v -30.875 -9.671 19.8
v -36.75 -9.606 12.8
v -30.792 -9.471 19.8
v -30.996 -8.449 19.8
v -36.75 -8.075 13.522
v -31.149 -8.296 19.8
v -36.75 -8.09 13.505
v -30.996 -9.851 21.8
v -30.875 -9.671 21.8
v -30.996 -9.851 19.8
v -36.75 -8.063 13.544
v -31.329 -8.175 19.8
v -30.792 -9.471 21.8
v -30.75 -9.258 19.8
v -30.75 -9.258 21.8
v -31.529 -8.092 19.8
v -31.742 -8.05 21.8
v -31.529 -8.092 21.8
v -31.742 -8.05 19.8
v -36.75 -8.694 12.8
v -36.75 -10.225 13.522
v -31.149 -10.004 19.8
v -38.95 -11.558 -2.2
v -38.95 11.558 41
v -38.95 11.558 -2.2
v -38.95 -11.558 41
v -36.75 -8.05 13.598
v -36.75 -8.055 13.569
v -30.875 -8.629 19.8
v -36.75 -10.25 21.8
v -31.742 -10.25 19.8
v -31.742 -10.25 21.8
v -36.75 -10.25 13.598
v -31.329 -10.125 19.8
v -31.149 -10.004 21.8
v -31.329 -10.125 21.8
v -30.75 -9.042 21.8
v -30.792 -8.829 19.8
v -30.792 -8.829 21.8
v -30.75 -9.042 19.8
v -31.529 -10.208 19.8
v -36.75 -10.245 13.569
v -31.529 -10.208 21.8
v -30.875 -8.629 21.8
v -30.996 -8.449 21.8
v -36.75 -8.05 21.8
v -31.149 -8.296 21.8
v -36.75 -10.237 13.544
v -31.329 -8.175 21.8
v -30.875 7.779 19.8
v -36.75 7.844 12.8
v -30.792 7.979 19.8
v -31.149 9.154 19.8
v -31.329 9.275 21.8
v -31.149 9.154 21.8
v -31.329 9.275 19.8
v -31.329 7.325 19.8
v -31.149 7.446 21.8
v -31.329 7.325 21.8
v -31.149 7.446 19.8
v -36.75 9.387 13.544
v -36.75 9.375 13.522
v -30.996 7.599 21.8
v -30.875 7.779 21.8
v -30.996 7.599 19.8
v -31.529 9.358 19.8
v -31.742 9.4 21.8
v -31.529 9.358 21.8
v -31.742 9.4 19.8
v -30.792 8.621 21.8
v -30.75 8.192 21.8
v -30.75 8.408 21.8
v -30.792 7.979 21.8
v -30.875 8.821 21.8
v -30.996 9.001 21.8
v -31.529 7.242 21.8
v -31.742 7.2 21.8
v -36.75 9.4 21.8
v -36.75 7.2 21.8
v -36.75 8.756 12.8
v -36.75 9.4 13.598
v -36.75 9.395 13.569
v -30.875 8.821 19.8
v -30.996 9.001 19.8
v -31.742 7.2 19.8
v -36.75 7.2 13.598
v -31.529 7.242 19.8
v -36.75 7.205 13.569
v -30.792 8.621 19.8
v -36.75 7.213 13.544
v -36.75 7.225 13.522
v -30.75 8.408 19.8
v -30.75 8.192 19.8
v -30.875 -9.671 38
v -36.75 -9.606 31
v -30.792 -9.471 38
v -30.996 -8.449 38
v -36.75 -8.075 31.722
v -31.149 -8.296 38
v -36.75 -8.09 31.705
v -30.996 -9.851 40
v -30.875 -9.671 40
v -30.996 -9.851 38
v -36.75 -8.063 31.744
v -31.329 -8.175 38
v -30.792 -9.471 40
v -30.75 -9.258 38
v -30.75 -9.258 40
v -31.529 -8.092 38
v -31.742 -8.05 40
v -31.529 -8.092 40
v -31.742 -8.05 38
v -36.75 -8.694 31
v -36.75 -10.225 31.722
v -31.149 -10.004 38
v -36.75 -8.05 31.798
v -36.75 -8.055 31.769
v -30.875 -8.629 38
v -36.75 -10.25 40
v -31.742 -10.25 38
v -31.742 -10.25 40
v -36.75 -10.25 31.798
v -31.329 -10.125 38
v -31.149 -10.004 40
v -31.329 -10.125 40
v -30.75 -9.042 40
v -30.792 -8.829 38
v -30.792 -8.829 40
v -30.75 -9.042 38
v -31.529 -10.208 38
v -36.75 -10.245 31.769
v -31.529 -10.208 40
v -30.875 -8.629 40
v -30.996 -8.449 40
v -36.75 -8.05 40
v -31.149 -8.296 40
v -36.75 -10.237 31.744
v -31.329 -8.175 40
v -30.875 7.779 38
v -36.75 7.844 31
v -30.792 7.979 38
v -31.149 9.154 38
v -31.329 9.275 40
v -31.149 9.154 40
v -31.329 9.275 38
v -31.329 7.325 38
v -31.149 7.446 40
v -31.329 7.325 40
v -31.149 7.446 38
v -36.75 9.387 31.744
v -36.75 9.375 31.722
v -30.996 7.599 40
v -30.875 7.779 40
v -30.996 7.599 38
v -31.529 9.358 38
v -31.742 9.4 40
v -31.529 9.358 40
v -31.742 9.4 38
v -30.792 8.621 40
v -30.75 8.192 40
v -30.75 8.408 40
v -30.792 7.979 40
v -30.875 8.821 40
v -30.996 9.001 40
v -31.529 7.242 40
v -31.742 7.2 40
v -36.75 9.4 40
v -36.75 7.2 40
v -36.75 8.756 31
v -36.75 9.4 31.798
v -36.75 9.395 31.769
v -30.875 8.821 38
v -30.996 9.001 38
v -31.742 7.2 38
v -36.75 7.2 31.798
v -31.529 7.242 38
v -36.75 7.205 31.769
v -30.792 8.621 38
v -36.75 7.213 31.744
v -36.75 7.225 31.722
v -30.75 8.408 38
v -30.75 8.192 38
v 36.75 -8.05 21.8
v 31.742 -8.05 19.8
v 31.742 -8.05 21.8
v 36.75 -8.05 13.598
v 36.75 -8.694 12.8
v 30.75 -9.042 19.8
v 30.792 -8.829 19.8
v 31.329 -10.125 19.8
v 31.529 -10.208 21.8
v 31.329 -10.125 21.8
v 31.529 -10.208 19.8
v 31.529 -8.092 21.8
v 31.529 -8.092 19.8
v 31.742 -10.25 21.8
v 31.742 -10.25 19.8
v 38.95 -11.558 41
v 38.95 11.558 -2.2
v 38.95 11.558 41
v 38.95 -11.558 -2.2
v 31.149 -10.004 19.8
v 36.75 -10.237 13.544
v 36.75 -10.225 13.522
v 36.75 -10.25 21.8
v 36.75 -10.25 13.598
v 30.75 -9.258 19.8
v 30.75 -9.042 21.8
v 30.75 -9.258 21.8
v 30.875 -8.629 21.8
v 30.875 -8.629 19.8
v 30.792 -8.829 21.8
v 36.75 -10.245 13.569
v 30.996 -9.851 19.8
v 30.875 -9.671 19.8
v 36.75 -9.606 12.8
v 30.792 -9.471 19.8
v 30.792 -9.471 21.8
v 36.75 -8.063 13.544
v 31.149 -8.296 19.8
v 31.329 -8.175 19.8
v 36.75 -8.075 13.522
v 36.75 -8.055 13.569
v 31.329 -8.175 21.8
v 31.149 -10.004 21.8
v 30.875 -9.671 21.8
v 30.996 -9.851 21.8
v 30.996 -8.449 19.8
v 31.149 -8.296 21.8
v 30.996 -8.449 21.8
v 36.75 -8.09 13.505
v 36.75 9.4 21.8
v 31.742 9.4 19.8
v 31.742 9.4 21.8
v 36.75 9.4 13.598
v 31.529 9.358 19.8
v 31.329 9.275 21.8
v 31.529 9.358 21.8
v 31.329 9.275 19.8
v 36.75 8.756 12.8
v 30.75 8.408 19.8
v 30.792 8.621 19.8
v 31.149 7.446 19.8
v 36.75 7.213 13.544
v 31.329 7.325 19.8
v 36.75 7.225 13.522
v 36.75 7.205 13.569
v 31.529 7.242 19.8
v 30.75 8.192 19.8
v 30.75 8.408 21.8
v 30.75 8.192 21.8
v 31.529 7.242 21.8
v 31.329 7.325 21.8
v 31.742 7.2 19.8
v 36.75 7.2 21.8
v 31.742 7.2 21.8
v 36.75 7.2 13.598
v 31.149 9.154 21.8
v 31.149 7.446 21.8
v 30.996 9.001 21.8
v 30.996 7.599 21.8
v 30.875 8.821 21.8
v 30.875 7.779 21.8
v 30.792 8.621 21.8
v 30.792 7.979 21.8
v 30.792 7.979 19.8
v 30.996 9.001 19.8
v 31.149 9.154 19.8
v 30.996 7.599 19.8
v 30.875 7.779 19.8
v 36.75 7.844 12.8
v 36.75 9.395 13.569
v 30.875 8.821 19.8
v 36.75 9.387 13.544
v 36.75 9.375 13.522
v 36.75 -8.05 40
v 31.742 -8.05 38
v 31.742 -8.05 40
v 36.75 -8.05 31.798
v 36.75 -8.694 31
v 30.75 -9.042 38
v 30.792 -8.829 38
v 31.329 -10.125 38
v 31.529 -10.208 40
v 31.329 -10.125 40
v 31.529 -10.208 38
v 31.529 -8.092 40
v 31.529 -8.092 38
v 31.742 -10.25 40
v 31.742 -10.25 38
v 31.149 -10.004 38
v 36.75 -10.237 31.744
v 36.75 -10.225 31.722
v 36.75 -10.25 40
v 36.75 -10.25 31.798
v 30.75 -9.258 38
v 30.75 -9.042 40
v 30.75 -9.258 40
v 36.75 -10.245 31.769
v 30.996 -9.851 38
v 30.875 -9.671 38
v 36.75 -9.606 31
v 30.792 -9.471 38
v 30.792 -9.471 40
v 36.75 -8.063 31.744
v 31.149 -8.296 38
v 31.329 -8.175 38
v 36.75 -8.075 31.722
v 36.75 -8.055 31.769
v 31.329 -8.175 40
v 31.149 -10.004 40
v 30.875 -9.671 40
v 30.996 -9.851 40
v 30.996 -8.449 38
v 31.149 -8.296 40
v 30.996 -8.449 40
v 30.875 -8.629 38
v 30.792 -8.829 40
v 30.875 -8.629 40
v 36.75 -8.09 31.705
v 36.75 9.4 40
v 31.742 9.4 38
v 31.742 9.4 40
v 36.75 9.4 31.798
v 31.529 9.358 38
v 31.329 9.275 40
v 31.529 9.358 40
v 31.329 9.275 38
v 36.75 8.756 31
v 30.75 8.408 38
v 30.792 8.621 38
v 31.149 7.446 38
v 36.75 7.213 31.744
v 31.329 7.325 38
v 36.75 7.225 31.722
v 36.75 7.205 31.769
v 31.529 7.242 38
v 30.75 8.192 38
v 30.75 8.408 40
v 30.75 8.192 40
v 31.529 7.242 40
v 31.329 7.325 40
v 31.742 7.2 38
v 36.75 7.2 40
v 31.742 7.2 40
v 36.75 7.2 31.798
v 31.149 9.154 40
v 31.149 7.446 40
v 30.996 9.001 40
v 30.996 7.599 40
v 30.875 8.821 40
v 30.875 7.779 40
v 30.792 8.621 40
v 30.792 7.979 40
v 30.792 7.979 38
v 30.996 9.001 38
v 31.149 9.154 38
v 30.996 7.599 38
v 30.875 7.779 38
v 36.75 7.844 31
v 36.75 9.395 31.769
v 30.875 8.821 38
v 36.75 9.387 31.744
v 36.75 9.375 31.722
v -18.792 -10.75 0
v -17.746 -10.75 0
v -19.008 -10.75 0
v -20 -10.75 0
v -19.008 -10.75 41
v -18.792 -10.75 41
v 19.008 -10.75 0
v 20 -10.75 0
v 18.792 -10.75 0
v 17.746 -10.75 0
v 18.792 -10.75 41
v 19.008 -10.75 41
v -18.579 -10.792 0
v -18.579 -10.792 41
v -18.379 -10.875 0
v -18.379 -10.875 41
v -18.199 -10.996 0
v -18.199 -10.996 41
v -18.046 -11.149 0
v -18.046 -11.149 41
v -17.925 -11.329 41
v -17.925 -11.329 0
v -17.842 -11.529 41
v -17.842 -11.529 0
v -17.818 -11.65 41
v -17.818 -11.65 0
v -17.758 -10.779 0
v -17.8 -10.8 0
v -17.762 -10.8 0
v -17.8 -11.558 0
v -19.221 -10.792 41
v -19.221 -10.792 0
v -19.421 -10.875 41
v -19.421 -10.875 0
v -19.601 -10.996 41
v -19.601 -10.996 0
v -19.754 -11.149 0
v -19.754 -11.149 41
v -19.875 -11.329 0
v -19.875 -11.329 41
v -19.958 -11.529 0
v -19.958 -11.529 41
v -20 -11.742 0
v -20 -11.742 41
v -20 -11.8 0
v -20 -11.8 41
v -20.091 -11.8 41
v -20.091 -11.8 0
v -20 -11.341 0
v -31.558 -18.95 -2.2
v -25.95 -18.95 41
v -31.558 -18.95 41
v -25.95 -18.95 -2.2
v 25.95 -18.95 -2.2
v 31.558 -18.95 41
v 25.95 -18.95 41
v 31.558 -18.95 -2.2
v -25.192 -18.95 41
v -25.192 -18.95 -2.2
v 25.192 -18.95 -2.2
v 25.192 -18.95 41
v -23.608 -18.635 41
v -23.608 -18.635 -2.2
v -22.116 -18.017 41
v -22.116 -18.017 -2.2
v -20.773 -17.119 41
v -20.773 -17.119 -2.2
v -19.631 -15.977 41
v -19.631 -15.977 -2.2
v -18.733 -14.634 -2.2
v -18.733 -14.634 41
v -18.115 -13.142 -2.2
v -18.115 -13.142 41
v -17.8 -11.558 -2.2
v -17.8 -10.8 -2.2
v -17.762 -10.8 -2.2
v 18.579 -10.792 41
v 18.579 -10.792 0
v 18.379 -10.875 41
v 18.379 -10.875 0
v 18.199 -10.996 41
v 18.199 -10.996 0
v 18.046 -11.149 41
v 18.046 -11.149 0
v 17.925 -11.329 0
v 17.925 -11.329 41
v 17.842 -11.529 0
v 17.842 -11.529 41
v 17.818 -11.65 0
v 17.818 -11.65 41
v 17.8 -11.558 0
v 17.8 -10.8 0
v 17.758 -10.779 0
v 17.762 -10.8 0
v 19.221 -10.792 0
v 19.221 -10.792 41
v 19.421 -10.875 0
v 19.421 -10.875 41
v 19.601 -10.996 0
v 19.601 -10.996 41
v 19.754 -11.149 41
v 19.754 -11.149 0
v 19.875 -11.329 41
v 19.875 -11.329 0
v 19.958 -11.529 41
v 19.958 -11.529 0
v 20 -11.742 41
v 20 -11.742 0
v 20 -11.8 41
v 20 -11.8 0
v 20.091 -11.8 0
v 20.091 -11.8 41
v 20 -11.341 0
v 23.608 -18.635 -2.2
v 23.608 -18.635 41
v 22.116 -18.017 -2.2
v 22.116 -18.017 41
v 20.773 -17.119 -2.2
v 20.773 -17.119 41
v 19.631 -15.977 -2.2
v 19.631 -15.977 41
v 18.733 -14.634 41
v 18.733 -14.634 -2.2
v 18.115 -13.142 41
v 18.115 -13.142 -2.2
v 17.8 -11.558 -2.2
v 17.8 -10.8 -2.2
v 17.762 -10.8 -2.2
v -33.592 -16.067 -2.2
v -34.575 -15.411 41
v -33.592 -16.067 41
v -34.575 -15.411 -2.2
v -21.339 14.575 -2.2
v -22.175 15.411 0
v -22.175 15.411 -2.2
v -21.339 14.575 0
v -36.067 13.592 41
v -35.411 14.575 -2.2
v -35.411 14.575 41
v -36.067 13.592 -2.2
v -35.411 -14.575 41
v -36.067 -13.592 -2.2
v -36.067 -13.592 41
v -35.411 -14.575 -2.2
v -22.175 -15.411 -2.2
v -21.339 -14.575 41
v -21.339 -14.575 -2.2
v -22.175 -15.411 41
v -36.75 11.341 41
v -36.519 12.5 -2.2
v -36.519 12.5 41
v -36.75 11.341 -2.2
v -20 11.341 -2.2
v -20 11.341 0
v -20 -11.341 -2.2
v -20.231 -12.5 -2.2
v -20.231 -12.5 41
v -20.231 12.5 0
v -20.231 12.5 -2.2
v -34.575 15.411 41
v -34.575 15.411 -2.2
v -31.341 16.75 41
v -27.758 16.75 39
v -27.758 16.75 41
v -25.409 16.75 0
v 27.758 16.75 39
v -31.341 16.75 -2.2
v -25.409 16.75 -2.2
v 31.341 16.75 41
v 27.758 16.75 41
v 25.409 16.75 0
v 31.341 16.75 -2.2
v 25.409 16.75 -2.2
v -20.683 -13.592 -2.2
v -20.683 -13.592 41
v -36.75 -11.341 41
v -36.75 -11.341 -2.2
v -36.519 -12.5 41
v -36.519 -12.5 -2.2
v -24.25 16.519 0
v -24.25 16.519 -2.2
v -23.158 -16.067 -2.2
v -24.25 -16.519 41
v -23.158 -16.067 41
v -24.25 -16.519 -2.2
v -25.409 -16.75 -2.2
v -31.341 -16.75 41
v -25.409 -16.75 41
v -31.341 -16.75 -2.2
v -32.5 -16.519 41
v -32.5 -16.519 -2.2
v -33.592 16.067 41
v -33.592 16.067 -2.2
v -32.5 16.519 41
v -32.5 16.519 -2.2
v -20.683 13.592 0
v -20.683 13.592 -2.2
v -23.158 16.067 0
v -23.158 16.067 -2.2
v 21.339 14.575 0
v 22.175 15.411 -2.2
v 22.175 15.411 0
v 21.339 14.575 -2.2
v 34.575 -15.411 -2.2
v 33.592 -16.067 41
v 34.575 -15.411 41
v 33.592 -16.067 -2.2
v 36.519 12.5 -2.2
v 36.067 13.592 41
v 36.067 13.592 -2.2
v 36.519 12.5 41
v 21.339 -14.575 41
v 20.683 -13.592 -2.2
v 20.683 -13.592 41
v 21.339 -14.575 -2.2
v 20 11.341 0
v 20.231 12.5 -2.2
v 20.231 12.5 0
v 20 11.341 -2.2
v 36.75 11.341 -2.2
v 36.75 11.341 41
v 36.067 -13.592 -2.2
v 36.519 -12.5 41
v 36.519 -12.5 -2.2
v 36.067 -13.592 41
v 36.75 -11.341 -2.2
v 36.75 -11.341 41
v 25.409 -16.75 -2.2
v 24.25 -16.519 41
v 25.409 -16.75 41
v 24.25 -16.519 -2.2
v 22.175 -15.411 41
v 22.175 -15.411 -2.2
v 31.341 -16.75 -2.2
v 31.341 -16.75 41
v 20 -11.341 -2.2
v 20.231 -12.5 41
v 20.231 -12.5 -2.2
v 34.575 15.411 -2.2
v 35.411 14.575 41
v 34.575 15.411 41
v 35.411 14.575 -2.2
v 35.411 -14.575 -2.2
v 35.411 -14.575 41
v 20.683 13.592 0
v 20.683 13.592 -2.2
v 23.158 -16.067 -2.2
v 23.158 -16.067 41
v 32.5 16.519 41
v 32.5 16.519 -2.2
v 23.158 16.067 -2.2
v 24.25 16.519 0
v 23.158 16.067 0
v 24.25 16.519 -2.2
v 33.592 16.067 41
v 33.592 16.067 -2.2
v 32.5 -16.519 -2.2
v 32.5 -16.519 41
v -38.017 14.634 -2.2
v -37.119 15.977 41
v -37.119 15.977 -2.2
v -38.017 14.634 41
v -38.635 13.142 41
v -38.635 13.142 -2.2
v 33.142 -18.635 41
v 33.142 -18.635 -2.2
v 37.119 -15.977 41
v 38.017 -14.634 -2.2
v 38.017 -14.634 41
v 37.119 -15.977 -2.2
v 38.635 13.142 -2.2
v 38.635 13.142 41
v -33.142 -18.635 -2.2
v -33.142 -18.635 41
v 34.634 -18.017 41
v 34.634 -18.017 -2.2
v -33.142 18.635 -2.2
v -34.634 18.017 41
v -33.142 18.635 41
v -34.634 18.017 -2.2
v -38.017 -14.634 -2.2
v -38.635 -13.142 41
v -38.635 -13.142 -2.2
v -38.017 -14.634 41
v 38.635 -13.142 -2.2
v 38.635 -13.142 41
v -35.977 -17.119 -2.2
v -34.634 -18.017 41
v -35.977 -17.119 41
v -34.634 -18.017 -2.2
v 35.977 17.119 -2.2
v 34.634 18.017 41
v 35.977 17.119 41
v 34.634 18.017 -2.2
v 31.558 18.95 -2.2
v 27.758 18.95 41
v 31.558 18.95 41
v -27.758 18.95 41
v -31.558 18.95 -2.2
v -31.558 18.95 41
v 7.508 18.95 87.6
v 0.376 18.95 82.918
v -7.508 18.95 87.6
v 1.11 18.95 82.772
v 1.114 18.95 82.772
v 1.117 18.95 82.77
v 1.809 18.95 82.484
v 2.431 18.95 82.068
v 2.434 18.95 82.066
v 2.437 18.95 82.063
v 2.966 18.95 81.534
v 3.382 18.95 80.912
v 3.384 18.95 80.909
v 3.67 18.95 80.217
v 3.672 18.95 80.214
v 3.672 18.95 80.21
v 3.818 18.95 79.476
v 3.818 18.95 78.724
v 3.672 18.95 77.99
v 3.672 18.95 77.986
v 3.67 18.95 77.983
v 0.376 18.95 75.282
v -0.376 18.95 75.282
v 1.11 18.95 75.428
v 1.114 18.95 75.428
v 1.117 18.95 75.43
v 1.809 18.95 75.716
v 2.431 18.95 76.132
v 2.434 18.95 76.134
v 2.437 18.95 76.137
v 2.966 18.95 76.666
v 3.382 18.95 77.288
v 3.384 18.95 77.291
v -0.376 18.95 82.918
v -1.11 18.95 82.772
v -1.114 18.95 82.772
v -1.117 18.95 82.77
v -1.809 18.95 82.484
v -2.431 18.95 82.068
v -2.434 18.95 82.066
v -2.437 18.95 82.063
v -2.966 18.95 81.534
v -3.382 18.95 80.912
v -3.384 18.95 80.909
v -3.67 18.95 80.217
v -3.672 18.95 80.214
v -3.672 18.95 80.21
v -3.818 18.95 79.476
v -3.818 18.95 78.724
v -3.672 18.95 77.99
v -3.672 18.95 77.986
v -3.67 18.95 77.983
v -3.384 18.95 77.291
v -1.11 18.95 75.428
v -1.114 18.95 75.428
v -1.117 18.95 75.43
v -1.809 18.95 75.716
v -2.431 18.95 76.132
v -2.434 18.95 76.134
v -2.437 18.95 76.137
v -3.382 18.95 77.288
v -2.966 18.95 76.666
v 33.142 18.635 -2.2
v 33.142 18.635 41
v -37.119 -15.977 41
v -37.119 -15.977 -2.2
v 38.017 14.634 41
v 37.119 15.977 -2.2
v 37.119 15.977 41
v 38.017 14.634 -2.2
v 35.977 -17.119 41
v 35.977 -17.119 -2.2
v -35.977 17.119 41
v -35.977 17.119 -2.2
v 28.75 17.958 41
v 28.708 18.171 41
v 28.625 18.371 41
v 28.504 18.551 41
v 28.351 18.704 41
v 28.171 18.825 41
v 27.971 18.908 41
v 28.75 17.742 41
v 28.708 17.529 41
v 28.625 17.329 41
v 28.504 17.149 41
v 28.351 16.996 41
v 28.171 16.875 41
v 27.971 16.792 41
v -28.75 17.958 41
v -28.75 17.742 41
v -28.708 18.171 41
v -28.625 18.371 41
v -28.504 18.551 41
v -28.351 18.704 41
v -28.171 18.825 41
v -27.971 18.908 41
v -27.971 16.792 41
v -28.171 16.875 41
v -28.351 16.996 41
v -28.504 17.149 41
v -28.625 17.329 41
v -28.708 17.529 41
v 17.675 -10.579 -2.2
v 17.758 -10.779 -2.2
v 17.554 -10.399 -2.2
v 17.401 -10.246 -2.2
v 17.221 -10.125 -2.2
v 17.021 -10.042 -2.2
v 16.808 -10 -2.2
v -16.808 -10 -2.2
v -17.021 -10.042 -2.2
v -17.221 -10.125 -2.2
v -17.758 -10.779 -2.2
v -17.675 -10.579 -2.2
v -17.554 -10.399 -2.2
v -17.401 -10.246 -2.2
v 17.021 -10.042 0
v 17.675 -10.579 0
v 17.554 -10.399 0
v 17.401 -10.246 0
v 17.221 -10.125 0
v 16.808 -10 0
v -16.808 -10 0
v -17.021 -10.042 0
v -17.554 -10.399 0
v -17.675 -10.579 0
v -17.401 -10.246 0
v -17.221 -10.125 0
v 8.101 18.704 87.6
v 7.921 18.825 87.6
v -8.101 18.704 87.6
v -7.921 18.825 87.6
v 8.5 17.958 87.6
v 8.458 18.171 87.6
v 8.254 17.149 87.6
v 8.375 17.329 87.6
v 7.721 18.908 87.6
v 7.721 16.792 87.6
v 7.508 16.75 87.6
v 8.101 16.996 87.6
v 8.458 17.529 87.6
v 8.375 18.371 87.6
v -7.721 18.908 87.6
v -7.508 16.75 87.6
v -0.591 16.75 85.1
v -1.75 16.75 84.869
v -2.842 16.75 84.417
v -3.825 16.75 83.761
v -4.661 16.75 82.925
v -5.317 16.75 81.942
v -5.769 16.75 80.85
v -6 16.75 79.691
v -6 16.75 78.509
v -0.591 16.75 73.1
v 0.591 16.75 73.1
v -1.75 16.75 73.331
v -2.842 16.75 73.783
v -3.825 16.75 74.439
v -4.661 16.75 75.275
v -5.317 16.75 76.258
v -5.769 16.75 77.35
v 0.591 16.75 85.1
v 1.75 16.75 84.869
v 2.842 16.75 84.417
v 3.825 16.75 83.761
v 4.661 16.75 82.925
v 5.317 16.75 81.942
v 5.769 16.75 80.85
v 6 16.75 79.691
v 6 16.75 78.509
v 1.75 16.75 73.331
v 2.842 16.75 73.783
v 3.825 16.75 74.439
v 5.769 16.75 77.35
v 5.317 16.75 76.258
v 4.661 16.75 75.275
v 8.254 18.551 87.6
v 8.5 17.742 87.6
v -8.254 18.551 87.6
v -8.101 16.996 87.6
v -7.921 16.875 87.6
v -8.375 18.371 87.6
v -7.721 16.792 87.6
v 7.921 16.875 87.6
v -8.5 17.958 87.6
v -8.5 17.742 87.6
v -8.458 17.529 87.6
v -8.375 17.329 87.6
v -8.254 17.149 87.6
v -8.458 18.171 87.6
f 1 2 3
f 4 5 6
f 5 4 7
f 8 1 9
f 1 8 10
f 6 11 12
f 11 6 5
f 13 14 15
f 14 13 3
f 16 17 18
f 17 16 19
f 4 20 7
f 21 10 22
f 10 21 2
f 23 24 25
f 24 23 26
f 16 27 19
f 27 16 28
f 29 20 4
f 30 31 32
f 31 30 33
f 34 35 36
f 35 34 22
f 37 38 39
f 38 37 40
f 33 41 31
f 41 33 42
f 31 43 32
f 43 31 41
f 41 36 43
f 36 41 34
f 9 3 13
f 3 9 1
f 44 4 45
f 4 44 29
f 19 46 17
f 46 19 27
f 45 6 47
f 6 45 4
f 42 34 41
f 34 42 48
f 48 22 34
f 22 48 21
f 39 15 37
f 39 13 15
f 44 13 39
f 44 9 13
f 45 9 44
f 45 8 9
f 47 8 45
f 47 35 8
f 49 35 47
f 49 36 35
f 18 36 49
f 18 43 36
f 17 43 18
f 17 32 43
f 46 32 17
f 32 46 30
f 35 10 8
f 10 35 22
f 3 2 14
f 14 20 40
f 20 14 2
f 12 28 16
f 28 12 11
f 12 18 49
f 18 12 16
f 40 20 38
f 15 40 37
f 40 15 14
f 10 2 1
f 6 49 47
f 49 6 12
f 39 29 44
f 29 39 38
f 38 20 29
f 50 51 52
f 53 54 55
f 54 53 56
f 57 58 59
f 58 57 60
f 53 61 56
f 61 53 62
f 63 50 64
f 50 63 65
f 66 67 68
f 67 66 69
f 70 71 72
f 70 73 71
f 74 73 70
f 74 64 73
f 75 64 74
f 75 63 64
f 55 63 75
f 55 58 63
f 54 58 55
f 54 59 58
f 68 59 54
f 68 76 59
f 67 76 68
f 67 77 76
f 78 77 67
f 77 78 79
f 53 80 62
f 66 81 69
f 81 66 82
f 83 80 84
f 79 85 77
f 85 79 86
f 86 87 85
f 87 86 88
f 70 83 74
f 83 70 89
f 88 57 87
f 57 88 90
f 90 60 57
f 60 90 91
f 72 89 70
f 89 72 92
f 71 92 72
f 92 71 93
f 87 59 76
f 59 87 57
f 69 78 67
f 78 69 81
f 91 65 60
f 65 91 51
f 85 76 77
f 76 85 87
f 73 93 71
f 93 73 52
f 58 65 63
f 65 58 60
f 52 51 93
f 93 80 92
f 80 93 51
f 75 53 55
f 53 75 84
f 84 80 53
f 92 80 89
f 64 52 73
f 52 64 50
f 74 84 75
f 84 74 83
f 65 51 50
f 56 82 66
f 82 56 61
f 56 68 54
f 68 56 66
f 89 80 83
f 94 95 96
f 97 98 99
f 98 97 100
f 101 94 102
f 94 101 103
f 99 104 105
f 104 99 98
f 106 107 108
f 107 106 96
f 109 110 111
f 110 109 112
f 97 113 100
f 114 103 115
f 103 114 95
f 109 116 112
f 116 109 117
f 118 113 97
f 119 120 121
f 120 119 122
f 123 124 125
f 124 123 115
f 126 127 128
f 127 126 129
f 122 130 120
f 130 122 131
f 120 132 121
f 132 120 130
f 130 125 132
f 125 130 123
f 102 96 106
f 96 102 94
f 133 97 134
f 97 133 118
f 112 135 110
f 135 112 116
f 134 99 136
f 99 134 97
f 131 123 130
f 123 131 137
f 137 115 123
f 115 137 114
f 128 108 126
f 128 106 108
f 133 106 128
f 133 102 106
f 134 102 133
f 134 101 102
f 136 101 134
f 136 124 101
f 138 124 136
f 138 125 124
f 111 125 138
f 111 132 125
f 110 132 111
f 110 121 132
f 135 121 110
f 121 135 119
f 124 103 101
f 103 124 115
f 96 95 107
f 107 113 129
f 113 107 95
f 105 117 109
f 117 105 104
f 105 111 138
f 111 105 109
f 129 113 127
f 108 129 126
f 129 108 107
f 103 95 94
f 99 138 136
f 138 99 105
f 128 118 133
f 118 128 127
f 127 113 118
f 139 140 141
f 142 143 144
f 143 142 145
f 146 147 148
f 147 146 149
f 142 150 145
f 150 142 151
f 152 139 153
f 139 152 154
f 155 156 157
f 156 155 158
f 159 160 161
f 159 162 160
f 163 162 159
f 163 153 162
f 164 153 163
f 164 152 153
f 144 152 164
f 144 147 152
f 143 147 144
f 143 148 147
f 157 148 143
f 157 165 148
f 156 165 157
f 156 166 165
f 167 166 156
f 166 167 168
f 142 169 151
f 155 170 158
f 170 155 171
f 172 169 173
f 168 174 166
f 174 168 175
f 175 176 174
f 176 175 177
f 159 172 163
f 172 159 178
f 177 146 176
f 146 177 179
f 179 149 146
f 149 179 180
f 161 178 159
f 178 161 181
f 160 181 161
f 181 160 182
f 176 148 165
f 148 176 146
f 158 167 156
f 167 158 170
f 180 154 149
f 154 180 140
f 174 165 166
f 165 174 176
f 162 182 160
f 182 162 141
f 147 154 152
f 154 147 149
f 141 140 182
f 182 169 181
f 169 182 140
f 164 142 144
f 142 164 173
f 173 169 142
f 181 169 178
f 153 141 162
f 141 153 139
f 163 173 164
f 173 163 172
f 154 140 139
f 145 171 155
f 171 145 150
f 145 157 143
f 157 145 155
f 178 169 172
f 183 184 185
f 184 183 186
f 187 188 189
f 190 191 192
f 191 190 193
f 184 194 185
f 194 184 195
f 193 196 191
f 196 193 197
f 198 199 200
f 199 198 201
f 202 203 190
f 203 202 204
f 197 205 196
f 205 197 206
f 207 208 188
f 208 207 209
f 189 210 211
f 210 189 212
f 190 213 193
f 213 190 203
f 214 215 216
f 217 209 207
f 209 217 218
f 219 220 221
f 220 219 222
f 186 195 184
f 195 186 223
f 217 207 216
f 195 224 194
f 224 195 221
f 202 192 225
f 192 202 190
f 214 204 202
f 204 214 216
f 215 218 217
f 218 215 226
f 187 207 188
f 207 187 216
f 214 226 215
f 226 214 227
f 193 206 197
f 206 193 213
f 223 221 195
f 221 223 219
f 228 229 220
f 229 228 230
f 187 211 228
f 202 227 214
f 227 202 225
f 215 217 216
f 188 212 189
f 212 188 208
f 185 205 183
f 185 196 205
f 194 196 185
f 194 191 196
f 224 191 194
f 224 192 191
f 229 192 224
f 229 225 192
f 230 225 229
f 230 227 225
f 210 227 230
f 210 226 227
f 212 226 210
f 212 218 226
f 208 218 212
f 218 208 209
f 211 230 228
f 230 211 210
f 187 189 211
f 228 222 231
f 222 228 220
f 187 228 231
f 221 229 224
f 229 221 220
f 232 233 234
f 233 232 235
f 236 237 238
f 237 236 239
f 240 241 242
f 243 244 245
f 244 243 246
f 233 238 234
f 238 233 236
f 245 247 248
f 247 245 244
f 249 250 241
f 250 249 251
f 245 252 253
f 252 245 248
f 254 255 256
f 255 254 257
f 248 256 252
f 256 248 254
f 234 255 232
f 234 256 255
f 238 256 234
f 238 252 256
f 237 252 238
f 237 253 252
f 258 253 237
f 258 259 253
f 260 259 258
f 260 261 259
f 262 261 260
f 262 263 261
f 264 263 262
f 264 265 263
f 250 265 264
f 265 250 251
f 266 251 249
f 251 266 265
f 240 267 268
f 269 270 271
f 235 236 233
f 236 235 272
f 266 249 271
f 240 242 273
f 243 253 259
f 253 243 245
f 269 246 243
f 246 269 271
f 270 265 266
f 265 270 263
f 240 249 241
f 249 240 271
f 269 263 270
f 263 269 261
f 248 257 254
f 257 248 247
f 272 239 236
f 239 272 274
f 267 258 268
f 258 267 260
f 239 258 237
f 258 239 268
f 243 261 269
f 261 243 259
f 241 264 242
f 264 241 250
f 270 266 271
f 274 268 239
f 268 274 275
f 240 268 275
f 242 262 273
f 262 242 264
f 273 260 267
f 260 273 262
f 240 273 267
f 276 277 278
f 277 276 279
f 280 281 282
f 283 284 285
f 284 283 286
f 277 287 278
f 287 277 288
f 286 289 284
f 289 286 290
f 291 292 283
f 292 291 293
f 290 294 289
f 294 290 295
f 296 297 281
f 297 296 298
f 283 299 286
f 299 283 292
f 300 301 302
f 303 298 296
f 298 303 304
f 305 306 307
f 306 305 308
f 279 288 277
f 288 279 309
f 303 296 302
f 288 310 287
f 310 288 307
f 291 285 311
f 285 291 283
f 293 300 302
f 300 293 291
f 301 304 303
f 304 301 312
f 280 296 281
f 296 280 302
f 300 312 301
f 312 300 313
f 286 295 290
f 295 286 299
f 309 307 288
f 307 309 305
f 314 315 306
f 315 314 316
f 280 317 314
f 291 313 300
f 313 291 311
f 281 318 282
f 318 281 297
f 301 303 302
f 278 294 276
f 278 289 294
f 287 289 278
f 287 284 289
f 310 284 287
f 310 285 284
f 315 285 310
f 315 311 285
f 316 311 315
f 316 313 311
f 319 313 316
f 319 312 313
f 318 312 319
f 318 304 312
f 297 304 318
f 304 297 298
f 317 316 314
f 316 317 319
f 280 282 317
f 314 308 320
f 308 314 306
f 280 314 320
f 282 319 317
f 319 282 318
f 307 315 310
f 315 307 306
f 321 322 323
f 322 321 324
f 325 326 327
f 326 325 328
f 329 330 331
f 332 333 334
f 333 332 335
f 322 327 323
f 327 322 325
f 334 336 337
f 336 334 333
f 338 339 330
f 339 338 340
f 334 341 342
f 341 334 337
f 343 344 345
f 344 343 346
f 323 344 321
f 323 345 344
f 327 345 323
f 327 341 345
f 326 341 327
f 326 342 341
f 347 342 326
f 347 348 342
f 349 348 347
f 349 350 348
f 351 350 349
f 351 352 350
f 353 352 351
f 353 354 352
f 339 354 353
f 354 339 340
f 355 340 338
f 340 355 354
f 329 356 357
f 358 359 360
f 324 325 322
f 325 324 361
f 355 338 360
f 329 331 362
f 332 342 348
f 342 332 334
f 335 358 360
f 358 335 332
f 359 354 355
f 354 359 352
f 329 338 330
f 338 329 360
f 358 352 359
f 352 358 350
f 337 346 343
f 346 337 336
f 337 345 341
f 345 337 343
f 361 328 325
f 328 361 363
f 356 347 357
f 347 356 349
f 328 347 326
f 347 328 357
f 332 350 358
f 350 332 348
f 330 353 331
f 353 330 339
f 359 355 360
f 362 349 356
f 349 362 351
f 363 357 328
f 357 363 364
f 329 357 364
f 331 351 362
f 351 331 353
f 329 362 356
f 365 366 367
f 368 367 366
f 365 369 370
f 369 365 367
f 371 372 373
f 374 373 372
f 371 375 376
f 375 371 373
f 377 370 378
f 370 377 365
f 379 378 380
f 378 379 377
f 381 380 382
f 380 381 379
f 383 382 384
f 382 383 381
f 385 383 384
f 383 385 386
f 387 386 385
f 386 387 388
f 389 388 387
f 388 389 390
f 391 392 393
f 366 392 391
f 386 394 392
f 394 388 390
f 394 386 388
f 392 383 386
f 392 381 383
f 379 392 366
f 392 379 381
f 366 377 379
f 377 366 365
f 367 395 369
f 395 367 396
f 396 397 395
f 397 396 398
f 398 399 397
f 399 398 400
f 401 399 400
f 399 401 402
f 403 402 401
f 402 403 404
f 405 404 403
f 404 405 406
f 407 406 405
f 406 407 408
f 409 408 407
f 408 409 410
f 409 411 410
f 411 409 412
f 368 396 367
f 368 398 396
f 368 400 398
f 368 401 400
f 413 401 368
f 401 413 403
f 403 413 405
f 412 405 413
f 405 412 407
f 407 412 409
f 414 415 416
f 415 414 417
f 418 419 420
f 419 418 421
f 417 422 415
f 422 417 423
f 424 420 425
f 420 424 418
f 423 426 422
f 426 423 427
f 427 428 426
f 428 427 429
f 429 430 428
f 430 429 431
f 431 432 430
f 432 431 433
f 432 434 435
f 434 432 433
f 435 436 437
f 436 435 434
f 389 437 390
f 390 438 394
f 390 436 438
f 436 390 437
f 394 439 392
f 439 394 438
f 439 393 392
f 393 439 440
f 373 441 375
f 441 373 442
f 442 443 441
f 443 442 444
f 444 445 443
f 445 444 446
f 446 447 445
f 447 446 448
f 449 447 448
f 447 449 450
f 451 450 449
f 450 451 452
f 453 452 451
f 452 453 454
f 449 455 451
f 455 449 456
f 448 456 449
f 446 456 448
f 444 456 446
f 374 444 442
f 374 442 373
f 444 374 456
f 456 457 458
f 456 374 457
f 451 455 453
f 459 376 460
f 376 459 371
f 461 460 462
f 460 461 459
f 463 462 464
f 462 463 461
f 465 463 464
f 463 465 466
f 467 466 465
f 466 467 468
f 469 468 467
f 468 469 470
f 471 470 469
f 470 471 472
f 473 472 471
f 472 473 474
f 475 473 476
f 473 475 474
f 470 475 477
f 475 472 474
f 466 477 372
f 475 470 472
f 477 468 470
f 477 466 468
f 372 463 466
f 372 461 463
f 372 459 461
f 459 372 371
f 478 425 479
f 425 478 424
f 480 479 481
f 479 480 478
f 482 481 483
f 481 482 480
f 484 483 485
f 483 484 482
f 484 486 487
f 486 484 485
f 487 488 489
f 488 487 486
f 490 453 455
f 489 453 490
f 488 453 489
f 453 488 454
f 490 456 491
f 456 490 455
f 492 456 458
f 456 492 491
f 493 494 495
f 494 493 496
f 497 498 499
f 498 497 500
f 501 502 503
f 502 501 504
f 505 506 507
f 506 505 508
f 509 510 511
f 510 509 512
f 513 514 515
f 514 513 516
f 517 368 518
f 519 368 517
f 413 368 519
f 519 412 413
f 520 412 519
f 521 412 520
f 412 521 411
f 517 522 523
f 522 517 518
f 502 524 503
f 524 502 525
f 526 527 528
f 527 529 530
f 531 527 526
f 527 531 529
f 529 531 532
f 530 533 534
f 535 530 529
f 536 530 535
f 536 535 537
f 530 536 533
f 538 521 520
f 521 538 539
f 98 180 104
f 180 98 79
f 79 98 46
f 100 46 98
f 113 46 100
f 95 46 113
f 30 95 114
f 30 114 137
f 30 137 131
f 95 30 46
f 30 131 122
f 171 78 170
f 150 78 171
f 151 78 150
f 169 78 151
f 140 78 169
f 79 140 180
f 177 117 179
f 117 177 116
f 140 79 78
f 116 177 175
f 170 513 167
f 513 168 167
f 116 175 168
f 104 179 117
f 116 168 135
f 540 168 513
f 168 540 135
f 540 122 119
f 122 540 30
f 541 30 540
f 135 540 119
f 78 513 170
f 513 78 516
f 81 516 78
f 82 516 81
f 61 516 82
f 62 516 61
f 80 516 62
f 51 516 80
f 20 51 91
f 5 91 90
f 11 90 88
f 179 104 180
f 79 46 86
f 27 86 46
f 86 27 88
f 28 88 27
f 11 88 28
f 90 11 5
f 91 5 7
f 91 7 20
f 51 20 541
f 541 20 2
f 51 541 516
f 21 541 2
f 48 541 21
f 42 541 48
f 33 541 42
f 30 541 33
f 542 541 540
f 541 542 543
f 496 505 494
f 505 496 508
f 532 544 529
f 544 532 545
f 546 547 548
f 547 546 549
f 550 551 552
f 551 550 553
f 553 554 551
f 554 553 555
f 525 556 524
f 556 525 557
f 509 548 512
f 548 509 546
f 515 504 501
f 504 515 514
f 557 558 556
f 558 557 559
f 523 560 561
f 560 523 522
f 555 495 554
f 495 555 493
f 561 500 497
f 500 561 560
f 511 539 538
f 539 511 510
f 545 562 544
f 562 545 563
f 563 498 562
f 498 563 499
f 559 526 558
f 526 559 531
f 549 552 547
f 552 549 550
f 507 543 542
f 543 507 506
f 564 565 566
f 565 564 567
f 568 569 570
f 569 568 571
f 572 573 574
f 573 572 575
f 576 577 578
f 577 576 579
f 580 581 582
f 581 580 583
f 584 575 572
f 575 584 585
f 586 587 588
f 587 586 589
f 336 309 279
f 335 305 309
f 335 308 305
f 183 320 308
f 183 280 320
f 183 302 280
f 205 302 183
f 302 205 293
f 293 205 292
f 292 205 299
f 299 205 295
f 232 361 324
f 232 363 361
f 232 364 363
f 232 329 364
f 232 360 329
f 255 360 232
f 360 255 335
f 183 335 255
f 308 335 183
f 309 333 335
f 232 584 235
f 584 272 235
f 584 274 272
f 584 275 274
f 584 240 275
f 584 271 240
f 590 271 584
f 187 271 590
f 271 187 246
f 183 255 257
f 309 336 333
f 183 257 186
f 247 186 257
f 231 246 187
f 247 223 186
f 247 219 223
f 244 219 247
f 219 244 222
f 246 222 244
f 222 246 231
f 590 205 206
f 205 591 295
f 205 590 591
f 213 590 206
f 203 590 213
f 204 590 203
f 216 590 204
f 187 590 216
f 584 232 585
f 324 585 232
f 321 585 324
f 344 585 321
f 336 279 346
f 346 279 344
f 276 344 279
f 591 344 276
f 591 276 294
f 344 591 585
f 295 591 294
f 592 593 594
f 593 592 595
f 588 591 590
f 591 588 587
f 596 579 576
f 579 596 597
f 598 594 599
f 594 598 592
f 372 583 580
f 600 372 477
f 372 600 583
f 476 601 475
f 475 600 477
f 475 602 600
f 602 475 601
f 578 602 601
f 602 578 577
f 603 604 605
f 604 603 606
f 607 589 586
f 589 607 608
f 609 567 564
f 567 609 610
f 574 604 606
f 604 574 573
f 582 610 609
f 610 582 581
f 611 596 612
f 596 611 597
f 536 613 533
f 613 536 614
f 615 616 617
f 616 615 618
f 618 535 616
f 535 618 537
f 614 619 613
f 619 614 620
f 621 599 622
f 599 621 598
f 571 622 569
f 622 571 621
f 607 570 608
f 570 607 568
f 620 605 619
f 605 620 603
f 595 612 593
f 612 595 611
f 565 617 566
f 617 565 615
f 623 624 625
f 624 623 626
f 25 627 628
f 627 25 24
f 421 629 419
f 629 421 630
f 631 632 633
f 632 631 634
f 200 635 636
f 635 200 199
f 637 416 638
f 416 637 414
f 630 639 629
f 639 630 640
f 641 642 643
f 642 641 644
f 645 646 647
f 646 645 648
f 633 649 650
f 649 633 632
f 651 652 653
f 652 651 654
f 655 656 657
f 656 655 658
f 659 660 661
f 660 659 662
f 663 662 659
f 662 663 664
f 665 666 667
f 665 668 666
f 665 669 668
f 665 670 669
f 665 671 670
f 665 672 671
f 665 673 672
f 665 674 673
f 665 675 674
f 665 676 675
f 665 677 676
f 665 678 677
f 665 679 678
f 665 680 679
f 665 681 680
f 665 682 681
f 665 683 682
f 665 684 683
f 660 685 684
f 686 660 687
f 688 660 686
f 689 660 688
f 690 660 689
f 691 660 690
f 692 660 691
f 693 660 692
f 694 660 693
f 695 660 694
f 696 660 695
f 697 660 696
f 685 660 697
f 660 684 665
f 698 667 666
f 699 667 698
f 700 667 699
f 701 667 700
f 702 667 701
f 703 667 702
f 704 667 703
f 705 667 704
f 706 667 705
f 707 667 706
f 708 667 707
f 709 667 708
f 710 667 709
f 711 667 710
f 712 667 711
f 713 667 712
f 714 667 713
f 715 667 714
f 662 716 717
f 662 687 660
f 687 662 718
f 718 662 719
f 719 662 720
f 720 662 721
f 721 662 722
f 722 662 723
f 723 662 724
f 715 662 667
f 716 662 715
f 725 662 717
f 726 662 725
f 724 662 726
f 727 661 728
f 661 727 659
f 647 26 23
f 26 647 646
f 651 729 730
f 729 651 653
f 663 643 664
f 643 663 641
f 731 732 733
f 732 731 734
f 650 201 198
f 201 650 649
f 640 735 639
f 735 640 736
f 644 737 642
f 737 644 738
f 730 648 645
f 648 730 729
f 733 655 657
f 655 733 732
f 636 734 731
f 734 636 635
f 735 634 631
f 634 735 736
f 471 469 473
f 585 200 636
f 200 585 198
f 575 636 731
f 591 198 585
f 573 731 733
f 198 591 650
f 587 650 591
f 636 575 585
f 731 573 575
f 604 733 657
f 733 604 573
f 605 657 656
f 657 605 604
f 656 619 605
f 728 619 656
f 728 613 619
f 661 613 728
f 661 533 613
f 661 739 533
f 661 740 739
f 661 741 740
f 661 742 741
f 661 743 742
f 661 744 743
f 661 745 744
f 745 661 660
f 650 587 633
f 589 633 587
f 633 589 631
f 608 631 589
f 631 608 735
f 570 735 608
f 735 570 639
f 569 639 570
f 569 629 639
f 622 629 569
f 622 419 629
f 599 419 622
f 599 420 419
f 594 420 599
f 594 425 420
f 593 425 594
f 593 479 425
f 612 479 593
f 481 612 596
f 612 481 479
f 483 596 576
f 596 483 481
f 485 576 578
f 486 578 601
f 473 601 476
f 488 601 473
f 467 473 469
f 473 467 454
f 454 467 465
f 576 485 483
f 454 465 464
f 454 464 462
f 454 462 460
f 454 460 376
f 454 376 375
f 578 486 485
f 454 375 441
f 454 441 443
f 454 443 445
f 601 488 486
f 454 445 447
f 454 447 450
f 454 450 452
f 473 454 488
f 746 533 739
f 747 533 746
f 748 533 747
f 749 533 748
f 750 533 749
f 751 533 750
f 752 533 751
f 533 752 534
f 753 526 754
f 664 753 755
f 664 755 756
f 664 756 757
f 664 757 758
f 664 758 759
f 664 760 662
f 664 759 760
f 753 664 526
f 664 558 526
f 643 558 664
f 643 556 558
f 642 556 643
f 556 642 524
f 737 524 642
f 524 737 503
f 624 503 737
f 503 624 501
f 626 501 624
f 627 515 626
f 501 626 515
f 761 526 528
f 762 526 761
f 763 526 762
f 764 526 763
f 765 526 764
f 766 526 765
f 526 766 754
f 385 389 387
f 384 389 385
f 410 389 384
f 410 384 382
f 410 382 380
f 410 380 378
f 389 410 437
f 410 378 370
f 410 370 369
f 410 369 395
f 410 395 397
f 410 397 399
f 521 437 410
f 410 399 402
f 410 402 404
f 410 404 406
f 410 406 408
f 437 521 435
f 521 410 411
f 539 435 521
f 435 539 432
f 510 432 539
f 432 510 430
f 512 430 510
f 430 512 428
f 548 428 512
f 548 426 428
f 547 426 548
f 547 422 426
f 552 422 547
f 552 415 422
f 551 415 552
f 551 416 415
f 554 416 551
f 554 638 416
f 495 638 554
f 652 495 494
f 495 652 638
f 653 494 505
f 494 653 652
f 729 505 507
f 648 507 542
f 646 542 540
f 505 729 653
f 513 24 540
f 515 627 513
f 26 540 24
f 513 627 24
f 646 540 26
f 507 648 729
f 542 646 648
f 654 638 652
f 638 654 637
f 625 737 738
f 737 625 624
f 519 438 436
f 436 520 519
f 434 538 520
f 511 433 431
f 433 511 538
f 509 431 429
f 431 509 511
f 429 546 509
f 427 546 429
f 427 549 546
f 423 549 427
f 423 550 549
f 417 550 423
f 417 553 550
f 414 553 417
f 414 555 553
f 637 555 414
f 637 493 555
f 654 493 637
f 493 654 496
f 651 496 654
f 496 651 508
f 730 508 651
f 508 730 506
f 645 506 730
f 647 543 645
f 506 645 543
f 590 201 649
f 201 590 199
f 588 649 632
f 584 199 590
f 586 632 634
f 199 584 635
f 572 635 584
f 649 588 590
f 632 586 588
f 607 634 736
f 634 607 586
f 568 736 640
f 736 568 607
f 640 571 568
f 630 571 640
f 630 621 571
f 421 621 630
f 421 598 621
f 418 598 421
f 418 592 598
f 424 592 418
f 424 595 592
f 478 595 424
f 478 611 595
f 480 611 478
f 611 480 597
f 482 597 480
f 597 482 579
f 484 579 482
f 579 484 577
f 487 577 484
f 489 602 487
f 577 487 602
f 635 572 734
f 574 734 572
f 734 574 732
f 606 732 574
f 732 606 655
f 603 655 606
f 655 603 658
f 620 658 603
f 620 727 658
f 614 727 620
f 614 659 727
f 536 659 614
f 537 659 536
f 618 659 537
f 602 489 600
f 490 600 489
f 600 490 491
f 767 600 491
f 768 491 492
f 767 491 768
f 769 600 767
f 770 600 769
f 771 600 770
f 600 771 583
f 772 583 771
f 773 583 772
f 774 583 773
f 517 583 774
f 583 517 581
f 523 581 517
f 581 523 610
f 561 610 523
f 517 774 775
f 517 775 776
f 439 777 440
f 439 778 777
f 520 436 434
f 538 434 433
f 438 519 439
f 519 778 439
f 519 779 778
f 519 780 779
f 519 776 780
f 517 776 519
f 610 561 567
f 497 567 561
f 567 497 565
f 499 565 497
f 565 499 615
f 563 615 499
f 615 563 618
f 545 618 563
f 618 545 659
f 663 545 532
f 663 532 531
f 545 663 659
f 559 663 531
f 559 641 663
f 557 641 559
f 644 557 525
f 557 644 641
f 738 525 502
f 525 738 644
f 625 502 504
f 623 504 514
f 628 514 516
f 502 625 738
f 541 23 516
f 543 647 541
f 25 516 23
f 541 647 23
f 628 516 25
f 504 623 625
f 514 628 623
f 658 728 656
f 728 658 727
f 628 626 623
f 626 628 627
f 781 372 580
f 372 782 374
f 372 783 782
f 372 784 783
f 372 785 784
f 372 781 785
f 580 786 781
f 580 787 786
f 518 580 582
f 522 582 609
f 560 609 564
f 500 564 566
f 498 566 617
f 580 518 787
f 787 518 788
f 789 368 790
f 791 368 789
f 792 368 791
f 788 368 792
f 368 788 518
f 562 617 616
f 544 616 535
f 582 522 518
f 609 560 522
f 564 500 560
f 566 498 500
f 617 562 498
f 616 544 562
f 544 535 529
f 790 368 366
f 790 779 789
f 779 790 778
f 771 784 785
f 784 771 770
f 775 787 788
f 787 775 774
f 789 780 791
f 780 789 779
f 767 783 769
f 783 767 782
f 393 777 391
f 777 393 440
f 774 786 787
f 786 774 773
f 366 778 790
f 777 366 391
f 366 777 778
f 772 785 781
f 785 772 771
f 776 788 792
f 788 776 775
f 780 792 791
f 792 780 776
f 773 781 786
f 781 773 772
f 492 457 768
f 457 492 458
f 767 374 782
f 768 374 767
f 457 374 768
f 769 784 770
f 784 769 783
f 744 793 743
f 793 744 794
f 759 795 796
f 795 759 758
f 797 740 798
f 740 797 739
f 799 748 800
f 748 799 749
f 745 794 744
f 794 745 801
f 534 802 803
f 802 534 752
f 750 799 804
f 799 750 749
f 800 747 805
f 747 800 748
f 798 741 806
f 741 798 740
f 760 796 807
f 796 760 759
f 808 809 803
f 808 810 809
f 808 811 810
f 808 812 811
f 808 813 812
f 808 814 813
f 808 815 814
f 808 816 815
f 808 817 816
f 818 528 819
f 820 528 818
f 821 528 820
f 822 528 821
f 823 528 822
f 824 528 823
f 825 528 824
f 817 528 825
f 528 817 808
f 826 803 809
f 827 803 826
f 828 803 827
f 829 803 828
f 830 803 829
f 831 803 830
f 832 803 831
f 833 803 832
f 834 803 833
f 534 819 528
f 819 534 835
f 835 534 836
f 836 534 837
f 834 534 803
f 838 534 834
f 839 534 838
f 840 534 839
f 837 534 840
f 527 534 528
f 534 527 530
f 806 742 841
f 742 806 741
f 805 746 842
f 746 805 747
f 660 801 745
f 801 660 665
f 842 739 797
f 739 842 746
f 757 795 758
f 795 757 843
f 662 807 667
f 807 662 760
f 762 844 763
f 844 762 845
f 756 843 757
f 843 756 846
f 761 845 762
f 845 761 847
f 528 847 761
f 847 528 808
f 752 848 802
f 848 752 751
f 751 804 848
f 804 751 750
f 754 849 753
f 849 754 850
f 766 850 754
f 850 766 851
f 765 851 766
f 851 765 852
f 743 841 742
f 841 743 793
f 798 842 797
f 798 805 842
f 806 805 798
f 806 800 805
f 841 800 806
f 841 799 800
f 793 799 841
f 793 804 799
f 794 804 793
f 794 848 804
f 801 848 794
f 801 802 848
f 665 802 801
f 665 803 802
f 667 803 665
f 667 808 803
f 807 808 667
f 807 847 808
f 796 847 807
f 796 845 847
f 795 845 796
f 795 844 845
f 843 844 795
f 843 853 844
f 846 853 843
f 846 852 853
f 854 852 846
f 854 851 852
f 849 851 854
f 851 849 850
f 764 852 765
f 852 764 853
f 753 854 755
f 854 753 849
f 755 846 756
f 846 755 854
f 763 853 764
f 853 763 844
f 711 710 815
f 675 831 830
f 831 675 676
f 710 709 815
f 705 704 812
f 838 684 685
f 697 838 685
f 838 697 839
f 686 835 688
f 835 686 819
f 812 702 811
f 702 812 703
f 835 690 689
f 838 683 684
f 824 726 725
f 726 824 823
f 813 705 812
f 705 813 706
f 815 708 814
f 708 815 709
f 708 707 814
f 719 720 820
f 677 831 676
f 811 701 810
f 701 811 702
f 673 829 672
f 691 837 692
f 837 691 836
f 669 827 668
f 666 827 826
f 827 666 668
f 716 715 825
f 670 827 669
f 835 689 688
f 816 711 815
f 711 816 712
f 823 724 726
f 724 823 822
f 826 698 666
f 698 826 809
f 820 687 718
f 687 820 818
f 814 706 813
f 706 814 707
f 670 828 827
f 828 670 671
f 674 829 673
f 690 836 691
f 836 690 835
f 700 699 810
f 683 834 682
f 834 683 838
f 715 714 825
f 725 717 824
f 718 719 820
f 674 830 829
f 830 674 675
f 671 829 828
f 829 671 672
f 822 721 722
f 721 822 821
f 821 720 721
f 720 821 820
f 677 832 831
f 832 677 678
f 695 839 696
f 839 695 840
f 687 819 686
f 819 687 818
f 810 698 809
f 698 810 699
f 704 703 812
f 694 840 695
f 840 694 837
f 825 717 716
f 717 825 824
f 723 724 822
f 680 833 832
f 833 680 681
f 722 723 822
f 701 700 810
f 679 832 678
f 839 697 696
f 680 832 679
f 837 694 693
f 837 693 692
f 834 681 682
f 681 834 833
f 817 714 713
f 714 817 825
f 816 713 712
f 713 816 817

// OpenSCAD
include <lumpyscad/lib.scad>;

// rough dimensions
object_width = 60.5;
object_depth = 26.5;
object_height = 113;
object_rounded_diam = 30;
face_height = 70;
face_depth = 3;

// rough measurements because it doesn't matter
button_from_bottom = 30;
button_diam = 14;

wall_thickness = 2.2;
air_gap = 6; // let air circulate around the device, under the assumption it will give more accurate readings

object_tolerance = 1;
cavity_width = object_width + object_tolerance;
cavity_depth = object_depth + object_tolerance;
cavity_height = object_height-face_height-2;
cavity_rounded_diam = air_gap * 2;

air_cavity_width = cavity_width + 2 * air_gap;
air_cavity_depth = cavity_depth + air_gap;

overall_width = air_cavity_width + 2 * wall_thickness;
overall_depth = air_cavity_depth + 2 * wall_thickness; // no air gap in front
overall_height = cavity_height + wall_thickness;
overall_rounded_diam = cavity_rounded_diam + 2 * (wall_thickness);

// an airthings corentium home 2
module object() {
  module body() {
    union() {
      // main
      translate([0, 0, object_depth / 2]) {
        rounded_cube(object_width, object_height, object_depth, object_rounded_diam, resolution);
      }
      // face
      translate([0, object_height / 2 - face_height / 2, object_depth + face_depth / 2]) {
        rounded_cube(object_width, face_height, face_depth, object_rounded_diam, resolution);
      }
    }
  }

  module holes() {
    // button
    button_depth_diam = 30;
    button_depth = 2;
    translate([0, -object_height / 2 + button_from_bottom, object_depth + button_depth_diam / 2 - button_depth]) {
      sphere(r=button_depth_diam / 2, $fn=resolution * 3);
    }
  }

  difference() {
    body();
    holes();
  }
}

module main() {
  center_retainer = 40;
  retaining_rib_height = air_gap * 1.5;
  hook_hole_pos = object_height*0.7; // make high enough to be self leveling (plumbing)
  screw_head_diam = 12;
  screw_area_height = screw_head_diam + 5;

  module position_object() {
    translate([0, air_cavity_depth / 2 - object_tolerance / 2, object_height / 2]) {
      rotate([90, 0, 0]) {
        children();
      }
    }
  }

  module retaining_rib() {
    rib_len = air_gap + wall_thickness;
    hull() {
      translate([rib_len / 2, 0, retaining_rib_height / 2 - 1]) {
        rounded_cube(rib_len, wall_thickness, 2, wall_thickness);
      }
      translate([rib_len - wall_thickness / 2, 0, 0]) {
        hole(wall_thickness, retaining_rib_height);
      }
    }
  }

  module body() {
    // air gap ribs, to allow air to go by, but still hold the sensor
    translate([0, 0, overall_height / 2 - wall_thickness]) {
      translate([0, air_cavity_depth / 2 - cavity_depth + object_tolerance / 2, 0]) {
        for (x = [left, right]) {
          for (z = [-overall_height / 2 + retaining_rib_height / 2 + object_rounded_diam / 2, overall_height / 2 - retaining_rib_height / 2 - 1]) {
            for (y = [wall_thickness / 2, object_depth * 0.7]) {
              mirror([x-1, 0, 0]) {
                translate([cavity_width / 2, y, z]) {
                  retaining_rib();
                }
              }
            }
          }
        }
      }

      difference() {
        rounded_cube(overall_width, overall_depth, overall_height, overall_rounded_diam);

        translate([0, air_cavity_depth / 2 - cavity_depth / 2, wall_thickness]) {
          //rounded_cube(overall_width - wall_thickness * 2, overall_depth - wall_thickness * 2, overall_height, cavity_rounded_diam);
          cube([cavity_width, cavity_depth, overall_height], center=true);
        }

        translate([0, air_cavity_depth / 2 - cavity_depth, 0]) {
          translate([0, -cavity_depth / 2 + object_tolerance / 2, 0]) {
            rounded_cube(center_retainer - wall_thickness * 2, cavity_depth + object_tolerance / 2, overall_height + 2, wall_thickness);
          }
        }
        for (x = [left, right]) {
          mirror([x - 1, 0, 0]) {
            translate([center_retainer / 2 - wall_thickness, -overall_depth / 2, 0]) {
              //
              round_corner_filler(overall_rounded_diam, overall_height + 2);
            }

            translate([center_retainer / 2 - wall_thickness / 2, air_cavity_depth / 2 - cavity_depth, wall_thickness]) {
              for (x = [left, right]) {
                mirror([x - 1, 0, 0]) {
                  translate([wall_thickness / 2, 0, 0]) {
                    rotate([0, 0, 180]) {
                      round_corner_filler(wall_thickness, overall_height);
                    }
                  }
                }
              }
            }
          }
        }

        for (x = [left, right]) {
          bottom_hole_width = (air_cavity_width - center_retainer) / 2;
          translate([x * (air_cavity_width / 2 - bottom_hole_width / 2), 0, 0]) {
            rounded_cube(bottom_hole_width, air_cavity_depth, overall_height + 2, cavity_rounded_diam);
          }
        }
      }
      // hook/screw hanger
      translate([0, overall_depth / 2 - wall_thickness / 2, -overall_height / 2]) {
        hull() {
          translate([0, 0, overall_height-1]) {
            rounded_cube(object_width-3, wall_thickness, 2, wall_thickness);
          }
          translate([0,0,wall_thickness+hook_hole_pos]) {
            rounded_cube(screw_area_height, wall_thickness, screw_area_height, wall_thickness);
          }
        }
      }
    }
  }

  module holes() {
    //
    translate([0,overall_depth/2-wall_thickness,hook_hole_pos]) {
      rotate([-90,0,0]) {
        hull() {
          translate([0,0,-1]) {
            hole(screw_head_diam, 2, resolution);
          }
          hole(0.1, screw_head_diam, resolution);
        }
      }
    }
  }

  position_object() {
    // %color("#777") object();
  }

  difference() {
    body();
    holes();
  }
}

main();
